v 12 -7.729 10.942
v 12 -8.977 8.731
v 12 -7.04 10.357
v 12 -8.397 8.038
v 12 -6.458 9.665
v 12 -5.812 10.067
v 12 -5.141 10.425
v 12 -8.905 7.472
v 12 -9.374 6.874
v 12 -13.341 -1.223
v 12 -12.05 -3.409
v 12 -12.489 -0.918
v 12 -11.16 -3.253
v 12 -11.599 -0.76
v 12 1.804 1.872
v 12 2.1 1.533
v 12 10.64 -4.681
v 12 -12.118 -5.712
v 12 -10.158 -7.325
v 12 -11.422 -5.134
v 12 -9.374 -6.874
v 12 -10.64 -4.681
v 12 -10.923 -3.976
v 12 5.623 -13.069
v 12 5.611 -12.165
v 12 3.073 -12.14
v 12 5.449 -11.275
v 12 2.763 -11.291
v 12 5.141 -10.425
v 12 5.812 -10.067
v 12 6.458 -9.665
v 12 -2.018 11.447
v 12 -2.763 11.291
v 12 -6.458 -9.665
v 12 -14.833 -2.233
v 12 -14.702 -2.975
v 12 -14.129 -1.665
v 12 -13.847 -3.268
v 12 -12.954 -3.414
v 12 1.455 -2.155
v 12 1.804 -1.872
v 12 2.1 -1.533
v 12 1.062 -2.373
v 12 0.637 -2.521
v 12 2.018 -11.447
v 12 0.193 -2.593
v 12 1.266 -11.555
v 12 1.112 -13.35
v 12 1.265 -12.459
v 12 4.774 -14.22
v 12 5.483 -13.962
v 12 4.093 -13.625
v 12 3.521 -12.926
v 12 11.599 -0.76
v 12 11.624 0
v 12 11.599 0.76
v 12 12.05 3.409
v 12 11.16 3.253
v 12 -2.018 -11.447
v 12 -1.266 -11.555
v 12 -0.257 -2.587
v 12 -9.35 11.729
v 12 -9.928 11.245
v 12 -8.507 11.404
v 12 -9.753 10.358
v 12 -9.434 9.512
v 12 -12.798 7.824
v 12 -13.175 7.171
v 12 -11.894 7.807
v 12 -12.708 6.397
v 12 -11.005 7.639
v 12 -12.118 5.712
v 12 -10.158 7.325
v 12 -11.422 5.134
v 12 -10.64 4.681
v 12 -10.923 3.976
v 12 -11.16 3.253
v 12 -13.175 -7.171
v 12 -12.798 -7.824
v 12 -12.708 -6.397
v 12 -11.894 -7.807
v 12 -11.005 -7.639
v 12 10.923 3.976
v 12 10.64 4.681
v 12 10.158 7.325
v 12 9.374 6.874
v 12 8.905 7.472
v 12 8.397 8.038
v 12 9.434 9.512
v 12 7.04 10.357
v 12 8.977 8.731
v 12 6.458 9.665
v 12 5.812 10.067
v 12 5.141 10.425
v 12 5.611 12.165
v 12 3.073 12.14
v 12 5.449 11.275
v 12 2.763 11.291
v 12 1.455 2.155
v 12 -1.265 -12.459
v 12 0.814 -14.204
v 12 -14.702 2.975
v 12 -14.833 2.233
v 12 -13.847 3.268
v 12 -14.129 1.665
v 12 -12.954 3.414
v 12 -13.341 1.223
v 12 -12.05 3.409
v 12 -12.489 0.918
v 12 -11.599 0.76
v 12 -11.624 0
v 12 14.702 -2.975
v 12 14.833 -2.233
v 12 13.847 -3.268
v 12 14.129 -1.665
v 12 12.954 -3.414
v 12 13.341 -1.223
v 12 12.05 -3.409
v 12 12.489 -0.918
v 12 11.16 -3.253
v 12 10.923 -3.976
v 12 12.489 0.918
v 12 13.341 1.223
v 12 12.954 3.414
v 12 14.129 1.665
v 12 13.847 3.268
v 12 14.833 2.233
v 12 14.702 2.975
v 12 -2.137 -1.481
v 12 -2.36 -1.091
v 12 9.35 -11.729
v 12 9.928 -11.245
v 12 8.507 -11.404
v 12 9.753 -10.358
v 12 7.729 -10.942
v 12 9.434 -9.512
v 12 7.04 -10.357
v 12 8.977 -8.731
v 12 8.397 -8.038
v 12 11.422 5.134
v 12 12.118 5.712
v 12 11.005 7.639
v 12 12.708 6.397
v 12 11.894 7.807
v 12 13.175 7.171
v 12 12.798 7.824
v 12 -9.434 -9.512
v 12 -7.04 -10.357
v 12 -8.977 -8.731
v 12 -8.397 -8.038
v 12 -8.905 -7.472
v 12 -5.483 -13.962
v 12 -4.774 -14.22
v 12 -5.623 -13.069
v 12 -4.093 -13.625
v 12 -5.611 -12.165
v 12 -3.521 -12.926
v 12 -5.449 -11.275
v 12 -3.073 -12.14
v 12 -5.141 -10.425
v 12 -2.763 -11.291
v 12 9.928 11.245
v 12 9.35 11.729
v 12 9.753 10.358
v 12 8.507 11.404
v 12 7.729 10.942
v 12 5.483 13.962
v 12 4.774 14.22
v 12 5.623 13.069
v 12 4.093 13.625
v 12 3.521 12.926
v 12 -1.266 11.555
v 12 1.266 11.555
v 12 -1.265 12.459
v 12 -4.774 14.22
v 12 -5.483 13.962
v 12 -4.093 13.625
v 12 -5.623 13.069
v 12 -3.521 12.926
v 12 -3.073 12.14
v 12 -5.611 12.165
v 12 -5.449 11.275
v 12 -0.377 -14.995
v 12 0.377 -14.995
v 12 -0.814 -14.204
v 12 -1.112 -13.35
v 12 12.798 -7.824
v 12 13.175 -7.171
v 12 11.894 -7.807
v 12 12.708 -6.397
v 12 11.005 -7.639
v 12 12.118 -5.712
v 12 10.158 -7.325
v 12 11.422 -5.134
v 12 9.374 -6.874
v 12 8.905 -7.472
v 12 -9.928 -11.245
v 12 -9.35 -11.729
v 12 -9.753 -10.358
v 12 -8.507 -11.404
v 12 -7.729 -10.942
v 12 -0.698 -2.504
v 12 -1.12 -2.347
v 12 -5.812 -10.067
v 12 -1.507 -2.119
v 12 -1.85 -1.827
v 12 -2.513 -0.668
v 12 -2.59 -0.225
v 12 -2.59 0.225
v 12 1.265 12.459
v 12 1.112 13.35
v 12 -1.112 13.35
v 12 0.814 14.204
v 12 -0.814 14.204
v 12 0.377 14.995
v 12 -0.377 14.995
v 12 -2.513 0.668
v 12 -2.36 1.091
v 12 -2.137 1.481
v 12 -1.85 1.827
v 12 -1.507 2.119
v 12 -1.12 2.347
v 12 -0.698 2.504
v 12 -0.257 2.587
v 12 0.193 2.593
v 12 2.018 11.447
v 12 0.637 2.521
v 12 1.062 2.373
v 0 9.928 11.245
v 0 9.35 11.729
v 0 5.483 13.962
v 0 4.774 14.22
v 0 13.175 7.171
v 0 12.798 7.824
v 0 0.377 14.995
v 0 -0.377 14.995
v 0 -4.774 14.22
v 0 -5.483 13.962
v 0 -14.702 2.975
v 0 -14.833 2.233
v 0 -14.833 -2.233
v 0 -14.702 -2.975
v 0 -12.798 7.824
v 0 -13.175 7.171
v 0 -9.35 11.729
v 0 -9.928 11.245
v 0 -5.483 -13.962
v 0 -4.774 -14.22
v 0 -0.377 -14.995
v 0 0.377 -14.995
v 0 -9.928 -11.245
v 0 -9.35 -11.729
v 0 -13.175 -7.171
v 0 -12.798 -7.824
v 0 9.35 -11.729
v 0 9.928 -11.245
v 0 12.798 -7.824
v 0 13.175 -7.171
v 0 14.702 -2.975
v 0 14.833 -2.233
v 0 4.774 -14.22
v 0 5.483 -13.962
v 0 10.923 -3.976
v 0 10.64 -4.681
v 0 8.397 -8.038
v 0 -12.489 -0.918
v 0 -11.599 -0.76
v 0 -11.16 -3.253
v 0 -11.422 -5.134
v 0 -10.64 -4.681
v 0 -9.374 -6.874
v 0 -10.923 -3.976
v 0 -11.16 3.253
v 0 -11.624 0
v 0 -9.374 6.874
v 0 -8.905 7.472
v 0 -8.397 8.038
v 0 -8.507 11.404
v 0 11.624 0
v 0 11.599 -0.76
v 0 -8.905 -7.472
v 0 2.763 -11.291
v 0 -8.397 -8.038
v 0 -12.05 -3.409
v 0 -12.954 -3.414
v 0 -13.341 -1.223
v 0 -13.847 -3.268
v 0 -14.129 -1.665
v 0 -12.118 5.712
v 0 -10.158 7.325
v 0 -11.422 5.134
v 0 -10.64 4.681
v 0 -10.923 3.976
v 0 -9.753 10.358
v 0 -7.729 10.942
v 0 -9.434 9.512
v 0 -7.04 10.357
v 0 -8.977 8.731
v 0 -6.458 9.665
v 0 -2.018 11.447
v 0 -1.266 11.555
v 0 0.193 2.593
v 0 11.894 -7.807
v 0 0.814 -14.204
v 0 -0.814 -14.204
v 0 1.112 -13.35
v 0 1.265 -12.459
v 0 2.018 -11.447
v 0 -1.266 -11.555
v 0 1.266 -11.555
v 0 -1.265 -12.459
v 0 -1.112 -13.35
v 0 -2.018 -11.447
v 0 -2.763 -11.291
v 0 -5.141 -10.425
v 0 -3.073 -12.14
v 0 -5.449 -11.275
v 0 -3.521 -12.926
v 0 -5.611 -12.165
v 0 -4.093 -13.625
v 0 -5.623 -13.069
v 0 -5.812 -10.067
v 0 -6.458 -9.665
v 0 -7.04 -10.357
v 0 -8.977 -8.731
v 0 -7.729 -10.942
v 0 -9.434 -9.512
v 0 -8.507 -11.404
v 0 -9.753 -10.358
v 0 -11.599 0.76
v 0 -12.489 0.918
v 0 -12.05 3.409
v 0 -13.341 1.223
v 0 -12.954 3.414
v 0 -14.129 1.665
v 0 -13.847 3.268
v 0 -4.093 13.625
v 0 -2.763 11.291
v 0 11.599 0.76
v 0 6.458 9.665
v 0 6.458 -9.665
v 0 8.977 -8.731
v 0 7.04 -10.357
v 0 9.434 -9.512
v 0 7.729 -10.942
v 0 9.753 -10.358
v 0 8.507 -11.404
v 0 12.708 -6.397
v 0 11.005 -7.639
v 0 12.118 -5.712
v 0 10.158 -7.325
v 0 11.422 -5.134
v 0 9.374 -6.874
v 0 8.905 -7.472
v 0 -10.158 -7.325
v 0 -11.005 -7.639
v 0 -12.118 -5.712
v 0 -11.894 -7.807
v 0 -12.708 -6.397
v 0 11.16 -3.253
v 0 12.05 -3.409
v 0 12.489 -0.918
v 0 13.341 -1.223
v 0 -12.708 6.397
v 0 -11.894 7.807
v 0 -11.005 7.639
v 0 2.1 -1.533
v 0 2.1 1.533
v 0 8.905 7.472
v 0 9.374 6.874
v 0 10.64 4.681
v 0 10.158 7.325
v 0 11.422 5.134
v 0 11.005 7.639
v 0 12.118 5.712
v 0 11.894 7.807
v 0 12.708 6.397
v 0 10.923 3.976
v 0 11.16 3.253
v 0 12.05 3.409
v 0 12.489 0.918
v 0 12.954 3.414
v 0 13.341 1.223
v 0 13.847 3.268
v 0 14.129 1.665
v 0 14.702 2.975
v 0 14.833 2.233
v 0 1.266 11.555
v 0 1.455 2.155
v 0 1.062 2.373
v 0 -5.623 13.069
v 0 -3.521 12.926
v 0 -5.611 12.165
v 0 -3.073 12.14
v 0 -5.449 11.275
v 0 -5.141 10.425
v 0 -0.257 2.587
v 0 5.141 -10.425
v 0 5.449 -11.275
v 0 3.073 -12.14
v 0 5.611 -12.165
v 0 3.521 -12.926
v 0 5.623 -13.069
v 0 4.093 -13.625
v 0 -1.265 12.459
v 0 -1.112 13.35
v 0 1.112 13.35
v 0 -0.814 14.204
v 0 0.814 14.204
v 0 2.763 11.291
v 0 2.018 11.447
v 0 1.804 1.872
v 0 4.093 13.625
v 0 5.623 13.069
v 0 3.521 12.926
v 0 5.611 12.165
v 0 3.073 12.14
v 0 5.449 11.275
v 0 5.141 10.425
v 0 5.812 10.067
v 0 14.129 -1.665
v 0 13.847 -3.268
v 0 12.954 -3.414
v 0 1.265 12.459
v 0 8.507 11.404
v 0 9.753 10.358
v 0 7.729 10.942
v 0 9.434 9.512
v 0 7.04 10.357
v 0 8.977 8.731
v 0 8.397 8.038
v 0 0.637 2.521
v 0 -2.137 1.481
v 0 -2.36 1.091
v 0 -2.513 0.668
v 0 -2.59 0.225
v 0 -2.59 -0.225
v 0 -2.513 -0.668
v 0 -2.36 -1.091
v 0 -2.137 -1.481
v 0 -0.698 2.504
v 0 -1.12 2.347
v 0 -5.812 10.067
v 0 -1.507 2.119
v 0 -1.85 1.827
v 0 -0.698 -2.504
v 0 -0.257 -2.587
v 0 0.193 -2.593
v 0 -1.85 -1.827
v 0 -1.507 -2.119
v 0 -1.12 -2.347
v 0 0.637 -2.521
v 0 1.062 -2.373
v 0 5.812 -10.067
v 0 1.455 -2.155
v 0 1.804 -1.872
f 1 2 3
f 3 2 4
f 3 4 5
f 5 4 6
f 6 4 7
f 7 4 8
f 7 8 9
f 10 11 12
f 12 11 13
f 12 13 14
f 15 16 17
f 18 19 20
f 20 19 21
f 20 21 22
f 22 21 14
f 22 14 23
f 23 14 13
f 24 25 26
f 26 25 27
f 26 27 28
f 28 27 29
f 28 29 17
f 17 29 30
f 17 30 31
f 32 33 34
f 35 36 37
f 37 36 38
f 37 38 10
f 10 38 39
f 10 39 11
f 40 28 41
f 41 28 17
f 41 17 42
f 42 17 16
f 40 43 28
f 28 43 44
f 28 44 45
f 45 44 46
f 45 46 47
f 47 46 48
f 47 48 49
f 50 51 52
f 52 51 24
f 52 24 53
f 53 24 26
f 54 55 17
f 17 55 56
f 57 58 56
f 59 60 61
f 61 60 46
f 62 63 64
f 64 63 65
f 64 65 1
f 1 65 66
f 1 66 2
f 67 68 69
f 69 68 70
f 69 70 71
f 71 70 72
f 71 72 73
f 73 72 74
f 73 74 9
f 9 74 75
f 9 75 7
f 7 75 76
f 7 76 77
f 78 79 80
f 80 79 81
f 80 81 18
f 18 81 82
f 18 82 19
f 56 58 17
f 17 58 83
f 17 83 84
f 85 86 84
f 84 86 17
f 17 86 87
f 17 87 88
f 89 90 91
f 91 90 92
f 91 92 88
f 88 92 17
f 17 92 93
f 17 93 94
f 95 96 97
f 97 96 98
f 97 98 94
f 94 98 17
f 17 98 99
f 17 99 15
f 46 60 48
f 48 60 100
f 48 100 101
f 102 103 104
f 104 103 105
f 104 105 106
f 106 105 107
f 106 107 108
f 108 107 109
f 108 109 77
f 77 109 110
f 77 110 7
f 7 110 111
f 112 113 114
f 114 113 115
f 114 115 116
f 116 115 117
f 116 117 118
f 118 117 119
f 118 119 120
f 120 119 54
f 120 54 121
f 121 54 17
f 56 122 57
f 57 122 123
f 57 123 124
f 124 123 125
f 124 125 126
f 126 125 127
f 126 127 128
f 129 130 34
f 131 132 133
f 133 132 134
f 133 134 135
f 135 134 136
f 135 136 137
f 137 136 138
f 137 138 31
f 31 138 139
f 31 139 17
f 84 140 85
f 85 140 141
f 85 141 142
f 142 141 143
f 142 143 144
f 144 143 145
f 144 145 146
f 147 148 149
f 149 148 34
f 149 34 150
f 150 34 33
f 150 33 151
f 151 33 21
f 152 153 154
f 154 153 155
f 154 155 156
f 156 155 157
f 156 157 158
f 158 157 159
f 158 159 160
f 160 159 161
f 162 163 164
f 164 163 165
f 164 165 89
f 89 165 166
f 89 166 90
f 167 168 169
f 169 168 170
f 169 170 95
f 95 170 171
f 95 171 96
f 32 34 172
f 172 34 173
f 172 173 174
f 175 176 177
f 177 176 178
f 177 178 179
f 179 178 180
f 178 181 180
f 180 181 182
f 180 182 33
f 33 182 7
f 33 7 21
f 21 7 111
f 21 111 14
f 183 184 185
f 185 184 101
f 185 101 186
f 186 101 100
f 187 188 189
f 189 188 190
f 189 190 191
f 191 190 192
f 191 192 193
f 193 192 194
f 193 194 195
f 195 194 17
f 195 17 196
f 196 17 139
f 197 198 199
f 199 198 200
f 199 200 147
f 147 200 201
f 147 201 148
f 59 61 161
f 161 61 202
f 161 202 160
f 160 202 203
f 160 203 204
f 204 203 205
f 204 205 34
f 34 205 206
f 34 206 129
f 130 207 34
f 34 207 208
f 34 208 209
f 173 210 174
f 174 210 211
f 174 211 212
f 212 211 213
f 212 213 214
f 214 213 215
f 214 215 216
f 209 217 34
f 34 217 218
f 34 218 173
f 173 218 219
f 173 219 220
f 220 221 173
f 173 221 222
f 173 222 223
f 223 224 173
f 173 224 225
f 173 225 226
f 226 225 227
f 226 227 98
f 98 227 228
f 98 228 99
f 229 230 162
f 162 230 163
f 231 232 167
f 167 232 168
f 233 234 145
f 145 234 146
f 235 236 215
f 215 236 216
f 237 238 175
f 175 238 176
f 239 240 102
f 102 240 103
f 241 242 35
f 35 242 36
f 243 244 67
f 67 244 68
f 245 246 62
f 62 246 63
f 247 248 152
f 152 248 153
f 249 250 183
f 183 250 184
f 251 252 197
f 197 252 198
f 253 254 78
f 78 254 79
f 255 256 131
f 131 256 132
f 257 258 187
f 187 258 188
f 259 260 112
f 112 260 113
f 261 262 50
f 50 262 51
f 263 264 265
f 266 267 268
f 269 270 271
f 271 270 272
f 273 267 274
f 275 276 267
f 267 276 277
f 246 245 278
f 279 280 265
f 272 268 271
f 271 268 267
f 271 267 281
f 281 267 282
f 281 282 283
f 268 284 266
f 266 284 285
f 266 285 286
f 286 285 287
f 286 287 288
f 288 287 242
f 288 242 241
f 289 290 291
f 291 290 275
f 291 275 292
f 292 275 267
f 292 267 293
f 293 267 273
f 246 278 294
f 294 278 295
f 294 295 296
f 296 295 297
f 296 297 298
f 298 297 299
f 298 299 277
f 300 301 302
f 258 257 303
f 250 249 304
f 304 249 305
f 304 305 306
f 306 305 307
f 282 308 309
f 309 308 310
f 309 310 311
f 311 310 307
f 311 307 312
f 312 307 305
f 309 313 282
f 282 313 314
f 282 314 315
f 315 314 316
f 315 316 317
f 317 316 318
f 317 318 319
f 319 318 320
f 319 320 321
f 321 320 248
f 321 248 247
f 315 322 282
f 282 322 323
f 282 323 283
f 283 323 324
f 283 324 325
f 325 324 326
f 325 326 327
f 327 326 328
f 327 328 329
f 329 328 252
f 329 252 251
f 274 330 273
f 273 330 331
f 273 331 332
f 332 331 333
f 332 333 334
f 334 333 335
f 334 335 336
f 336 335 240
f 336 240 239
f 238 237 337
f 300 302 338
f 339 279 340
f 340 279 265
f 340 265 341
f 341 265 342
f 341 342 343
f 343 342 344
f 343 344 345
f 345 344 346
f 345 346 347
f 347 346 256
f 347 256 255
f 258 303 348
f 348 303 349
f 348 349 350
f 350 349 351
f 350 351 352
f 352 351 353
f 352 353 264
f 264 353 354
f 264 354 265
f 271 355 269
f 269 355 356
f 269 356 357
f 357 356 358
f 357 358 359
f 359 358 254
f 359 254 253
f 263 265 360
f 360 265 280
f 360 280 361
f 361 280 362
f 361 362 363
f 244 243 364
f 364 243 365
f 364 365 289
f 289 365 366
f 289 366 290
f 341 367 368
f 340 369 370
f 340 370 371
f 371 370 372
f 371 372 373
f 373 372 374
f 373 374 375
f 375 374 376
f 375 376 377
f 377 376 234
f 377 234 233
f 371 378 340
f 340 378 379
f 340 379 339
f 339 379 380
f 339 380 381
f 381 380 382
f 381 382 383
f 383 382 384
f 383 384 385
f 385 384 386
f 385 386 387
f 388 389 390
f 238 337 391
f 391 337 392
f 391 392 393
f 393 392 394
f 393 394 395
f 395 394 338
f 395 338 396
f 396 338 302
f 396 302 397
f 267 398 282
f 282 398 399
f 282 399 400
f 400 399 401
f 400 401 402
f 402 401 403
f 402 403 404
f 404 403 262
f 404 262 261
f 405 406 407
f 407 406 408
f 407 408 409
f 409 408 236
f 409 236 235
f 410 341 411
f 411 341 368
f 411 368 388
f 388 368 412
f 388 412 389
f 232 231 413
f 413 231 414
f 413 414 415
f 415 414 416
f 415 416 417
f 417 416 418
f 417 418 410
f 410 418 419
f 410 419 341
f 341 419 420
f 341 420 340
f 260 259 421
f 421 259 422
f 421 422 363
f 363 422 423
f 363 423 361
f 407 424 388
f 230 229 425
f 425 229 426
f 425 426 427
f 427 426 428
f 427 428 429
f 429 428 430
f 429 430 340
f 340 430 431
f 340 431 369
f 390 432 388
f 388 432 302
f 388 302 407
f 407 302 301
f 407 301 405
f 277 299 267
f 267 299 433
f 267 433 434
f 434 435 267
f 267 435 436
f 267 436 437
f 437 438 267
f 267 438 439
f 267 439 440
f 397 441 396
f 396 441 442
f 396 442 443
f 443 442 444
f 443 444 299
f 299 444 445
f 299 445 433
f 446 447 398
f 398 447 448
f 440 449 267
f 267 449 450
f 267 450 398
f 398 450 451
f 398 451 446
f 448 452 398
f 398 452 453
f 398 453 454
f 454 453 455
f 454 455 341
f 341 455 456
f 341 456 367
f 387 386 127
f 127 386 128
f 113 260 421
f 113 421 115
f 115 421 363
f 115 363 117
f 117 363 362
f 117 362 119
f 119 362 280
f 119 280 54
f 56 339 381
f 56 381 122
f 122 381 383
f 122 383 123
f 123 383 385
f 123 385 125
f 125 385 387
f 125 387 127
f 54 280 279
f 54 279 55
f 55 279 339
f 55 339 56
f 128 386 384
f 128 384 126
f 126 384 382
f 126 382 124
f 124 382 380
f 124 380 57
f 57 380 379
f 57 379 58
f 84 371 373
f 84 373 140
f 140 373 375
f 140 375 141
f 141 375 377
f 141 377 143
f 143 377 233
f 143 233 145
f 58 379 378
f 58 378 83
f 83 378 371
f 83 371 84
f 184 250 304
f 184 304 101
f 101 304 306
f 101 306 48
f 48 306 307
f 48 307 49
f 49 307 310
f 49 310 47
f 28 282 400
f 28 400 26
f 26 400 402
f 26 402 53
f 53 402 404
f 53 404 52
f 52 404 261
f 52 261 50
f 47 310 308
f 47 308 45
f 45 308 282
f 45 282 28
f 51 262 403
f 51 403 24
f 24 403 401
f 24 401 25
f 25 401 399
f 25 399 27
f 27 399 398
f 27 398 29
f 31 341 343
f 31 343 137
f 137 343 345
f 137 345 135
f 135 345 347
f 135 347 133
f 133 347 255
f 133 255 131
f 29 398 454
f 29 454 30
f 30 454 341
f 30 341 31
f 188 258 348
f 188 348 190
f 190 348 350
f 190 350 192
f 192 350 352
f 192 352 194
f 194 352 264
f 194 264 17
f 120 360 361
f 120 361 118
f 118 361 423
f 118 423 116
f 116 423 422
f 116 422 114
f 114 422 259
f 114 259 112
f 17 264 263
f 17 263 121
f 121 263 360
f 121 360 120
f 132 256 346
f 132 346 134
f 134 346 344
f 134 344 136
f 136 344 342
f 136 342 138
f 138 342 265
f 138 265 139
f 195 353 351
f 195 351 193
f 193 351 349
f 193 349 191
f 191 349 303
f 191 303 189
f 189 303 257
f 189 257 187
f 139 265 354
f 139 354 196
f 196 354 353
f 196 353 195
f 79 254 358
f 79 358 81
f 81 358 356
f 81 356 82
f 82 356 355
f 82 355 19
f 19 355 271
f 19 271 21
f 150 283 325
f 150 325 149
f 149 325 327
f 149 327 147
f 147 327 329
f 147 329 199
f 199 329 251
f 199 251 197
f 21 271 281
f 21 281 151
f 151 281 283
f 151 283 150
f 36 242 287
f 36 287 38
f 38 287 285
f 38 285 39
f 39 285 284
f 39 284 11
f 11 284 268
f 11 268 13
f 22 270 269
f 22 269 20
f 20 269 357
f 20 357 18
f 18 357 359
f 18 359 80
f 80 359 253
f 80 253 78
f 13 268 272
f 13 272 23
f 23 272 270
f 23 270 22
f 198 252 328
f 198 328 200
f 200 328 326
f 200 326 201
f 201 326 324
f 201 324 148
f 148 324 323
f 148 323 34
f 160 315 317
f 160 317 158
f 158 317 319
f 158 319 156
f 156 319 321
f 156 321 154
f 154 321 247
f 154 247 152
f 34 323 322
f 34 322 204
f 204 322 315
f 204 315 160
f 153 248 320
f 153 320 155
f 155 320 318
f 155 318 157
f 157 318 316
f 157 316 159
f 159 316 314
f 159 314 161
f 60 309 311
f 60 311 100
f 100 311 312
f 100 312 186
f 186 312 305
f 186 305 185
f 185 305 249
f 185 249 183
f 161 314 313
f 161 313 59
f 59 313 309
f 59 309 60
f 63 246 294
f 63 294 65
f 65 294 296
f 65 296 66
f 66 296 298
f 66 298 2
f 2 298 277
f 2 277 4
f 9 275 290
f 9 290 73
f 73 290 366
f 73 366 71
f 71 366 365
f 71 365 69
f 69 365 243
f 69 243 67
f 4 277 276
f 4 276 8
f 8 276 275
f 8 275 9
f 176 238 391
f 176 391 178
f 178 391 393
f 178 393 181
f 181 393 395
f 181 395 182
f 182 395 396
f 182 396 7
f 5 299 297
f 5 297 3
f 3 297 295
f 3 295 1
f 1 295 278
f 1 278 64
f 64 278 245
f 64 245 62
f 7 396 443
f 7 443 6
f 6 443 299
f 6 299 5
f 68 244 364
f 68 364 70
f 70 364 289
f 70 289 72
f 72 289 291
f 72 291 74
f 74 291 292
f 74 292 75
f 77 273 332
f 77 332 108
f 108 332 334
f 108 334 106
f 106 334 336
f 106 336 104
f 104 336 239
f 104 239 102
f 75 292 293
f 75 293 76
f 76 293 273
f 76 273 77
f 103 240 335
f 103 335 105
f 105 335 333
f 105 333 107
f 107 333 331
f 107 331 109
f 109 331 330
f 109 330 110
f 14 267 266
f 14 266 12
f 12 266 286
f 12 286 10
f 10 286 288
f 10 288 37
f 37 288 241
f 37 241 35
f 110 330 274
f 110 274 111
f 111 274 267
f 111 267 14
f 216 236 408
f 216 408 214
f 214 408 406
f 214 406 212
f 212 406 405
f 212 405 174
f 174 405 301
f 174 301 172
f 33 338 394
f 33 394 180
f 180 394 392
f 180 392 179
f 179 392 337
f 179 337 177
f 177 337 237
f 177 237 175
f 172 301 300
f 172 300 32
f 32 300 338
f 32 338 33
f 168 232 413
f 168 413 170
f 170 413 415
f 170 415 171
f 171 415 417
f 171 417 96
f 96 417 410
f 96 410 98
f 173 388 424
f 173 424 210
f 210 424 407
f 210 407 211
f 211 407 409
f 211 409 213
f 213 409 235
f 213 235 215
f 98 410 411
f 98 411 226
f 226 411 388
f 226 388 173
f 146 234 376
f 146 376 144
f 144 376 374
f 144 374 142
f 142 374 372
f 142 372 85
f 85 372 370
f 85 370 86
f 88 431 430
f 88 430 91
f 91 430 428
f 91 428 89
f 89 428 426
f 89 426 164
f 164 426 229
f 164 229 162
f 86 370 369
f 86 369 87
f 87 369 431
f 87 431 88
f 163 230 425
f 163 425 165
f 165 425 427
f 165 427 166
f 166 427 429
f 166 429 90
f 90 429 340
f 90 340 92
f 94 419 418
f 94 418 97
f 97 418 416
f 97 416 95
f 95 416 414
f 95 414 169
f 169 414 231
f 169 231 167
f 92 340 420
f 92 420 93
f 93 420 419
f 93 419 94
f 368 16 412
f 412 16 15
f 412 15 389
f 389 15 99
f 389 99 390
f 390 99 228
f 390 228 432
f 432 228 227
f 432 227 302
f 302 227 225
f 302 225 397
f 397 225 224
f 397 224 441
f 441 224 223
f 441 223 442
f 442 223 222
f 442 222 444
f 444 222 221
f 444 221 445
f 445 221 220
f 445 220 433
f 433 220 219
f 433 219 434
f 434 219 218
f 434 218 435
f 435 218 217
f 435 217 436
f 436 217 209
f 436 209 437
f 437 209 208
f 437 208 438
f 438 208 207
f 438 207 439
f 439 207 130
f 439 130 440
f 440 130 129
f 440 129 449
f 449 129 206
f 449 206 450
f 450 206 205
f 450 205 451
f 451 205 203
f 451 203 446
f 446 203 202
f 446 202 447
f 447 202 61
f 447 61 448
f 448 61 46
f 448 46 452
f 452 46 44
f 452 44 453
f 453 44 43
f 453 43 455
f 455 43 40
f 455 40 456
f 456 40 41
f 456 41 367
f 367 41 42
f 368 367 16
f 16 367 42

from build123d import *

# Parameters (mm, degrees)
BASPROSKE_W         = 12
BASPROSKE_H         = 15
TOOTHCUT_DEPTH      = 25.372115214
TEETHCUTS_COUNT     = 18
TEETHCUTS_ANGLE     = 340
BORSKE_R            = 2.5
BORE_DEPTH          = 50.0000508
SKETCH_1_R          = 2.6
CUT_EXTRUDE_1_DEPTH = 25.269634752
EXTRUDE_2_DEPTH     = 12


with BuildPart() as part:
    # BasProSke → Base-Revolve (revolve)
    with BuildSketch(Plane(origin=(0, 0, 0), x_dir=(1, 0, 0), z_dir=(0, 1, 0)), mode=Mode.PRIVATE) as base_revolve_sk:
        with Locations((6, 7.5)):
            Rectangle(BASPROSKE_W, BASPROSKE_H)
    revolve(base_revolve_sk.sketch.rotate(Axis((-10, 0, 0), (1, 0, 0)), 180), axis=Axis((-10, 0, 0), (1, 0, 0)))

    # TooCutSke → ToothCut (cut, through all)
    with BuildSketch(Plane(origin=(0, 0, 0), x_dir=(0, 0, -1), z_dir=(1, 0, 0))):
        with BuildLine():
            ThreePointArc((0.759974923, 11.599129886), (0, 11.624), (-0.759974923, 11.599129886))
            ThreePointArc((-0.759974923, 11.599129886), (-1.229186471, 13.354767823), (-2.254227748, 14.855339189))
            ThreePointArc((-2.254227748, 14.855339189), (0, 15.0254), (2.254227748, 14.855339189))
            ThreePointArc((2.254227748, 14.855339189), (1.229186471, 13.354767823), (0.759974923, 11.599129886))
        make_face()
    toothcut = extrude(amount=TOOTHCUT_DEPTH, mode=Mode.SUBTRACT)

    # TeethCuts: ToothCut ×18 about axis
    teethcuts_axis = Axis((-10, 0, 0), (1, 0, 0))
    for i in range(1, TEETHCUTS_COUNT):
        add(toothcut.rotate(teethcuts_axis, i * TEETHCUTS_ANGLE / (TEETHCUTS_COUNT - 1)), mode=Mode.SUBTRACT)

    # BorSke → Bore (cut, symmetric)
    with BuildSketch(Plane(origin=(0, 0, 0), x_dir=(0, 0, -1), z_dir=(1, 0, 0))):
        with Locations(Location((0, 0, 0), (0, 0, 180))):
            Circle(BORSKE_R)
    extrude(amount=BORE_DEPTH, both=True, mode=Mode.SUBTRACT)

    # 草圖1 → 除料-伸長1 (cut, through all)
    with BuildSketch(Plane(origin=(12, 0, 0), x_dir=(0, 0, -1), z_dir=(1, 0, 0))):
        Circle(SKETCH_1_R)
    extrude(amount=-CUT_EXTRUDE_1_DEPTH, mode=Mode.SUBTRACT)

    # 草圖2 → 填料-伸長2 (add, through all)
    with BuildSketch(Plane(origin=(12, 0, 0), x_dir=(0, 0, -1), z_dir=(1, 0, 0))):
        with BuildLine():
            Line((0, 2.1), (1.532970972, 2.1))
            ThreePointArc((1.532970972, 2.1), (0, 2.6), (-1.532970972, 2.1))
            Line((-1.532970972, 2.1), (0, 2.1))
        make_face()
    extrude(amount=-EXTRUDE_2_DEPTH)


solid = part.part
